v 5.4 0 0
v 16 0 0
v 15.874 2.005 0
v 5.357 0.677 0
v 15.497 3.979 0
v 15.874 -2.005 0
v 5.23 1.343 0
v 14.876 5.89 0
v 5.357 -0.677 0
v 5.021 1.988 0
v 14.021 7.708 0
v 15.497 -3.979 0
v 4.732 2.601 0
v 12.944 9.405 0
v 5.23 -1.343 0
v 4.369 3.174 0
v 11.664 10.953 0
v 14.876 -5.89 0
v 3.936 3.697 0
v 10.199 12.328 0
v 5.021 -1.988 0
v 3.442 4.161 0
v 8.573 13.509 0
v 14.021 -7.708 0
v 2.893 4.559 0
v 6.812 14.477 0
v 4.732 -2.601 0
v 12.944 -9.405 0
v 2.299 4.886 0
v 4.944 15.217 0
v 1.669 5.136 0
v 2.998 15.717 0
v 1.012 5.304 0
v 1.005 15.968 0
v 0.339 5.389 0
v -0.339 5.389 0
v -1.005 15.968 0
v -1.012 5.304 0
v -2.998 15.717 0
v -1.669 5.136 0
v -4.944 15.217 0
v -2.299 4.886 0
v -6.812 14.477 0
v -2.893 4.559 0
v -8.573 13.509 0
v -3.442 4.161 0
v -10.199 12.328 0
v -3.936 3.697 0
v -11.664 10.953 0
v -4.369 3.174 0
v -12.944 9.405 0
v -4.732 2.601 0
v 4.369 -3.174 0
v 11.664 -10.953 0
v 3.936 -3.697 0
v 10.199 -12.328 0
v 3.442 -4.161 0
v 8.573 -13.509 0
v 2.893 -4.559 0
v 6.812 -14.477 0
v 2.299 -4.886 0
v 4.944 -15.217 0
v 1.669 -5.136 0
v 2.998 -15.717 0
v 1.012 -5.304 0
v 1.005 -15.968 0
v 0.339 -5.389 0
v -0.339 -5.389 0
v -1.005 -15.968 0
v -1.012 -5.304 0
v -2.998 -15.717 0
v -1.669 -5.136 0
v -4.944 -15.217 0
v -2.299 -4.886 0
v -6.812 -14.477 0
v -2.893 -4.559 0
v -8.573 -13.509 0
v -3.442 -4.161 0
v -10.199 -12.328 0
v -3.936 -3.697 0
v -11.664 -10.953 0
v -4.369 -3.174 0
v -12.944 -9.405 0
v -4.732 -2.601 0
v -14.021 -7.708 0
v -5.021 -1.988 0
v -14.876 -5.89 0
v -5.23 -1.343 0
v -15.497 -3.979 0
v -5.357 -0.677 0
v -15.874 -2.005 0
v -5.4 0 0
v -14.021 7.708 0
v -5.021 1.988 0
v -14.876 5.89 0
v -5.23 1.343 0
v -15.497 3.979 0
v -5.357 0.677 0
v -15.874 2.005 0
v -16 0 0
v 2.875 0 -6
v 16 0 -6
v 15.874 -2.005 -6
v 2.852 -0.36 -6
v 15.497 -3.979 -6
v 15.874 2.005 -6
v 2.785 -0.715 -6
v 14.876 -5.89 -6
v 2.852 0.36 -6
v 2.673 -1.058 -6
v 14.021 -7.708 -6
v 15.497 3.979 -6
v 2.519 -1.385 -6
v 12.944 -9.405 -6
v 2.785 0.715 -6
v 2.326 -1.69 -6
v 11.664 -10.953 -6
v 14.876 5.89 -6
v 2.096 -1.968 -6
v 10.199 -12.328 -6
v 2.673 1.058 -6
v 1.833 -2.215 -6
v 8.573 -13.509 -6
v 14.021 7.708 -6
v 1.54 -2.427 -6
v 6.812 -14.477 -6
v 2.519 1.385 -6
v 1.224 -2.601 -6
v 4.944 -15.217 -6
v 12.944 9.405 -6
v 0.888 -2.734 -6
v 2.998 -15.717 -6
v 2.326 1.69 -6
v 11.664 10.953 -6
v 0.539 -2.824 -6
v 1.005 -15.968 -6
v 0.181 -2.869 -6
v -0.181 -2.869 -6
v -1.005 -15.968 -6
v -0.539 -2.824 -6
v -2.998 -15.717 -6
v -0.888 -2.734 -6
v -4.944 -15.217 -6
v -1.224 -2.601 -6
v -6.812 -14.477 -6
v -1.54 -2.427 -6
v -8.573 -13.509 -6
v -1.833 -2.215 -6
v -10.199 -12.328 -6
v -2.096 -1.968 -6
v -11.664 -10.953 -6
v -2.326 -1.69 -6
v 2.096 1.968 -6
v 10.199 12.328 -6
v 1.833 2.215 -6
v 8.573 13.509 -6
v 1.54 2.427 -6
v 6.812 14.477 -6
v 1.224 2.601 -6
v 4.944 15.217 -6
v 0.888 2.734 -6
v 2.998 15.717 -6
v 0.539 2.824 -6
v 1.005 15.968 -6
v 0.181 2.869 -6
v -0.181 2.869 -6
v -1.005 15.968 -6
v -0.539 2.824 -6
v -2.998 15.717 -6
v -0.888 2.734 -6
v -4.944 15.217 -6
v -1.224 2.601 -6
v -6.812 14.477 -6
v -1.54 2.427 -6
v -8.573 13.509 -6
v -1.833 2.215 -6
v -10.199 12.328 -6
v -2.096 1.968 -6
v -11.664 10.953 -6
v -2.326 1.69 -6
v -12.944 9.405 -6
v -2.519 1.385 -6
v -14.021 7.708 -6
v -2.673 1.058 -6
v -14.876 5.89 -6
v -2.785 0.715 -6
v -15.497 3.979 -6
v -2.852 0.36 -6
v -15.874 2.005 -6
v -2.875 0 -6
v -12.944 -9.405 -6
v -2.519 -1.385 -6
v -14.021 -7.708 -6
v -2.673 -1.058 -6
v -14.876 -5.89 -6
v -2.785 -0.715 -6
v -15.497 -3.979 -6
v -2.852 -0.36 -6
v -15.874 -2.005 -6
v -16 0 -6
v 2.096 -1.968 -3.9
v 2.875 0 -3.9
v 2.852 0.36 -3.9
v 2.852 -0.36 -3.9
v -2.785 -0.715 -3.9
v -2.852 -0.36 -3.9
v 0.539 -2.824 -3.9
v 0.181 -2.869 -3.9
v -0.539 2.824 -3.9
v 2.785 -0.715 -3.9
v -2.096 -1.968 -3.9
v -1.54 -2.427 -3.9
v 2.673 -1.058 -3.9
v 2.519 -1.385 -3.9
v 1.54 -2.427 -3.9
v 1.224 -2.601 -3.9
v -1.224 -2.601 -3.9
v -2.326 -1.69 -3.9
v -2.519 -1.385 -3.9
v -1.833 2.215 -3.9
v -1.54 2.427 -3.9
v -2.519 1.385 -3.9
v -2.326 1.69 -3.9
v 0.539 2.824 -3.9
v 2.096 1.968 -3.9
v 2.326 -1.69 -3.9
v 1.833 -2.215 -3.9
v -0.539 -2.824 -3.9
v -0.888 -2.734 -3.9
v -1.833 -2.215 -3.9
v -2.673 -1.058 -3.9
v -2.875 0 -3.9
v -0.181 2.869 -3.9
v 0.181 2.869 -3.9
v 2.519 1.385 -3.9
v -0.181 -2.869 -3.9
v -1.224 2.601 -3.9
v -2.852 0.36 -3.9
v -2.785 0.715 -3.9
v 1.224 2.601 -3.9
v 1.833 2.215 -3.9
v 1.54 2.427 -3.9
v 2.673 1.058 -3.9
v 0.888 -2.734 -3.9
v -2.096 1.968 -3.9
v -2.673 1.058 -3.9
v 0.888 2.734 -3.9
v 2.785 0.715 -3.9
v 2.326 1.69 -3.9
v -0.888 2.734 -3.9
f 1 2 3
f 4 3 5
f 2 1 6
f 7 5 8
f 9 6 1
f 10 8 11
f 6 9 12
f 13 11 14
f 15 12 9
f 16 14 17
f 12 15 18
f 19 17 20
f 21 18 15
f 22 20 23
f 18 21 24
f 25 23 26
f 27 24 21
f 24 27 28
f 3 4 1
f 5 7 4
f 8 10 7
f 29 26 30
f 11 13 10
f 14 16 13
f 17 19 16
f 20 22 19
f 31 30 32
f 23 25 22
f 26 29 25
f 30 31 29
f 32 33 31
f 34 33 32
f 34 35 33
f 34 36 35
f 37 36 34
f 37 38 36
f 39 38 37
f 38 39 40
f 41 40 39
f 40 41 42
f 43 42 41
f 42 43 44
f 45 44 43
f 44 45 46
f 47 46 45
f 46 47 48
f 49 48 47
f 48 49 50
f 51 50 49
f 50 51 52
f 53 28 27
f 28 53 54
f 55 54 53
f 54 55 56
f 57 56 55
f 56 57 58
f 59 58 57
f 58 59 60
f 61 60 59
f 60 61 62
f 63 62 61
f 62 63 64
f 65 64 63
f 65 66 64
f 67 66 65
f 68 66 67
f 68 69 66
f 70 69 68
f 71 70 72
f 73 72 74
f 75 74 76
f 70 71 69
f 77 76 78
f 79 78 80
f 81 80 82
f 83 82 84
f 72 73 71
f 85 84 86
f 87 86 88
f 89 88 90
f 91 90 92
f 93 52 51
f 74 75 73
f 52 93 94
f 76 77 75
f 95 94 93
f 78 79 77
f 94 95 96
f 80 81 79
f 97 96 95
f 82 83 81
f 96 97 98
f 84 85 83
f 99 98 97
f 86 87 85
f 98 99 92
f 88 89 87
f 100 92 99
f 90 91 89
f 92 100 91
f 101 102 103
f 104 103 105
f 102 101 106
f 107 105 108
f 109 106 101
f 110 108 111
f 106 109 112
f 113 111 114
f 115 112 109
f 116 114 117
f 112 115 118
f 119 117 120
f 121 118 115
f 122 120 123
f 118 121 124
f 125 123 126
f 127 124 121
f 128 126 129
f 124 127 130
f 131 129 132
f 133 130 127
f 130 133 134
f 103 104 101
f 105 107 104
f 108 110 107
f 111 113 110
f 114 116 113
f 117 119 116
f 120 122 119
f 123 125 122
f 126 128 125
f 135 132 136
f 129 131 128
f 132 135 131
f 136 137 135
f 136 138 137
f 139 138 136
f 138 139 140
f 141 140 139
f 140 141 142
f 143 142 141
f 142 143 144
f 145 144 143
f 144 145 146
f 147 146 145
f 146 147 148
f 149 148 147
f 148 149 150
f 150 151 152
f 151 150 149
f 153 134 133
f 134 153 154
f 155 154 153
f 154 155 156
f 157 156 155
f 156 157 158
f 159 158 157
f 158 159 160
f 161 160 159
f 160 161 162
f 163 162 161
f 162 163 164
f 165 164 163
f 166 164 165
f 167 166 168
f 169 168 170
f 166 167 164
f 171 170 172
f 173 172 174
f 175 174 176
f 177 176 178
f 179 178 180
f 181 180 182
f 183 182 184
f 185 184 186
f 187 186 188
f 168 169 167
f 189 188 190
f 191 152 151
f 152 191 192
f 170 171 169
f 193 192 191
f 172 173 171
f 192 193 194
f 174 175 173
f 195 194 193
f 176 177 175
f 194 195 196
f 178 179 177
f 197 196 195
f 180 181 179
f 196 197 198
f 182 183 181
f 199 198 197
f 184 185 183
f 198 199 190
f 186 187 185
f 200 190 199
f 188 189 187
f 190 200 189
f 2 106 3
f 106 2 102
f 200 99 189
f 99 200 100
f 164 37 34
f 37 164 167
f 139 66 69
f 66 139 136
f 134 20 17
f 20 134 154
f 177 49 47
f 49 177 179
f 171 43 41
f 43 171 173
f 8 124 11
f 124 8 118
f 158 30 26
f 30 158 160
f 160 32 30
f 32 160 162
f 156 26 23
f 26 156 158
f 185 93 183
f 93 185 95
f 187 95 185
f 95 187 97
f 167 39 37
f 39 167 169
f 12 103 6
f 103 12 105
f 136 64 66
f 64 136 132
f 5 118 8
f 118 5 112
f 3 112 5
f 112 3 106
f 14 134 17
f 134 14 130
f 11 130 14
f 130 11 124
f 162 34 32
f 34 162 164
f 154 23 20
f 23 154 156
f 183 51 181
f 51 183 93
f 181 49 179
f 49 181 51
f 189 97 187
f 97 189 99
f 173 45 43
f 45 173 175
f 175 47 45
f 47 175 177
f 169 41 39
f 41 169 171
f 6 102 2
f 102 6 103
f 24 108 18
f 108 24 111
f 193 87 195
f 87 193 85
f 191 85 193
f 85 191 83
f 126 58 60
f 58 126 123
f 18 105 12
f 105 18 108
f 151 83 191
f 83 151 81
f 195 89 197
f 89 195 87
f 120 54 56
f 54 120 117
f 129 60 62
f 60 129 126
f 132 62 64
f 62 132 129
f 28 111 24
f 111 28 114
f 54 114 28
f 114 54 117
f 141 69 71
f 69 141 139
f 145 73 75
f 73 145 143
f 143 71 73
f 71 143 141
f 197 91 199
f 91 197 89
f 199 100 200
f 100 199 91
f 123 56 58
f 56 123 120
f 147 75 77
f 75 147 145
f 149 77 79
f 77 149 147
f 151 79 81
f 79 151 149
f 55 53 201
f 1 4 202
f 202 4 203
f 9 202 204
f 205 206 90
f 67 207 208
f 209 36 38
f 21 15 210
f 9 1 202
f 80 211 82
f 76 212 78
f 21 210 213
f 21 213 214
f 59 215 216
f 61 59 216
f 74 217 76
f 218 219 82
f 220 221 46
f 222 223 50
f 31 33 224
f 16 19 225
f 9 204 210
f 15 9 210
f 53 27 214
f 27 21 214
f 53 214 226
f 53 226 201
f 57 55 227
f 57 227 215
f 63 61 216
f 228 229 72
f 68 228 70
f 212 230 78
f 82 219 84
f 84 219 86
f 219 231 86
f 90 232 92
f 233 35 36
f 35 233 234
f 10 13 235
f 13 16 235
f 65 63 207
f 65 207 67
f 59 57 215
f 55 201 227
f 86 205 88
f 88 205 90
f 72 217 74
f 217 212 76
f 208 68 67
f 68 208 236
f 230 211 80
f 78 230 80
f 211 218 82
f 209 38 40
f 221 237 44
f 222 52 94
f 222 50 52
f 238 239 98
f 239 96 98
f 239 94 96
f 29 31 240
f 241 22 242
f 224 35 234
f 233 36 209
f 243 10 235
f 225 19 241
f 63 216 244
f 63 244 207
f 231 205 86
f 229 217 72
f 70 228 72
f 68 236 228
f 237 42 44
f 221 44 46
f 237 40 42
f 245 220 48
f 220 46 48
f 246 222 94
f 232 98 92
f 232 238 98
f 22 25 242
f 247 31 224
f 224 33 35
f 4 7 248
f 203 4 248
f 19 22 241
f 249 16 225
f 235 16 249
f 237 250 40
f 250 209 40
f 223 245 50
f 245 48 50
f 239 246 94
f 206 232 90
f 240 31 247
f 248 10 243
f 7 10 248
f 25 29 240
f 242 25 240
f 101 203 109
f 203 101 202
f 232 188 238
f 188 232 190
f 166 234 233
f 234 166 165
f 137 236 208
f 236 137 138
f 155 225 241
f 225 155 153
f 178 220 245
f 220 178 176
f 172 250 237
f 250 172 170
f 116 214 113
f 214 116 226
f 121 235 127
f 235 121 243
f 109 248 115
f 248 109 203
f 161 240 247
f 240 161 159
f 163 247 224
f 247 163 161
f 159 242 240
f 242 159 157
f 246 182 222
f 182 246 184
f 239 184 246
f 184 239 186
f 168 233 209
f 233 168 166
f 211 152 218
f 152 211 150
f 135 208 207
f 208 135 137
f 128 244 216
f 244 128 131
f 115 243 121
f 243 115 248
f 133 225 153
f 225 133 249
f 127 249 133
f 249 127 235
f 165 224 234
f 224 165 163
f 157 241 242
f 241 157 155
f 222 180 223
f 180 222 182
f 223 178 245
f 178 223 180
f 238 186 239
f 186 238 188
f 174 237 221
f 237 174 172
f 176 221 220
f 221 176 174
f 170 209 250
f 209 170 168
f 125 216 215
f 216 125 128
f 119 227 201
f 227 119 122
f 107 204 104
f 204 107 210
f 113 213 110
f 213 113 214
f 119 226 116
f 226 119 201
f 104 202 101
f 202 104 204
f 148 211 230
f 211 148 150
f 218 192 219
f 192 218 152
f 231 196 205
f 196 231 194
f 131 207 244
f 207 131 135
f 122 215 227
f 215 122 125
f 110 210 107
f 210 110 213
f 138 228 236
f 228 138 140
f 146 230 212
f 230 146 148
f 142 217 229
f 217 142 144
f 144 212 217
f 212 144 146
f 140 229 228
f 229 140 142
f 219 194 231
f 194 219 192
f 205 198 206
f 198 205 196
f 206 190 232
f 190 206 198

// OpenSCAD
$fn = 50;


difference() {
	union() {
		translate(v = [0, 0, -6.0000000000]) {
			cylinder(h = 6, r = 7.0000000000);
		}
		translate(v = [0, 0, -6.0000000000]) {
			cylinder(h = 6, r = 16.0000000000);
		}
	}
	union() {
		translate(v = [0, 0, 0]) {
			rotate(a = [0, 0, 0]) {
				difference() {
					union() {
						#translate(v = [0, 0, -6.0000000000]) {
							cylinder(h = 6, r = 2.6000000000);
						}
						#translate(v = [0, 0, -3.9000000000]) {
							cylinder(h = 3.9000000000, r = 7.0000000000, r1 = 2.8750000000, r2 = 5.4000000000);
						}
						#translate(v = [0, 0, -6.0000000000]) {
							cylinder(h = 6, r = 2.8750000000);
						}
						#translate(v = [0, 0, -6.0000000000]) {
							cylinder(h = 6, r = 2.6000000000);
						}
					}
					union();
				}
			}
		}
	}
}
